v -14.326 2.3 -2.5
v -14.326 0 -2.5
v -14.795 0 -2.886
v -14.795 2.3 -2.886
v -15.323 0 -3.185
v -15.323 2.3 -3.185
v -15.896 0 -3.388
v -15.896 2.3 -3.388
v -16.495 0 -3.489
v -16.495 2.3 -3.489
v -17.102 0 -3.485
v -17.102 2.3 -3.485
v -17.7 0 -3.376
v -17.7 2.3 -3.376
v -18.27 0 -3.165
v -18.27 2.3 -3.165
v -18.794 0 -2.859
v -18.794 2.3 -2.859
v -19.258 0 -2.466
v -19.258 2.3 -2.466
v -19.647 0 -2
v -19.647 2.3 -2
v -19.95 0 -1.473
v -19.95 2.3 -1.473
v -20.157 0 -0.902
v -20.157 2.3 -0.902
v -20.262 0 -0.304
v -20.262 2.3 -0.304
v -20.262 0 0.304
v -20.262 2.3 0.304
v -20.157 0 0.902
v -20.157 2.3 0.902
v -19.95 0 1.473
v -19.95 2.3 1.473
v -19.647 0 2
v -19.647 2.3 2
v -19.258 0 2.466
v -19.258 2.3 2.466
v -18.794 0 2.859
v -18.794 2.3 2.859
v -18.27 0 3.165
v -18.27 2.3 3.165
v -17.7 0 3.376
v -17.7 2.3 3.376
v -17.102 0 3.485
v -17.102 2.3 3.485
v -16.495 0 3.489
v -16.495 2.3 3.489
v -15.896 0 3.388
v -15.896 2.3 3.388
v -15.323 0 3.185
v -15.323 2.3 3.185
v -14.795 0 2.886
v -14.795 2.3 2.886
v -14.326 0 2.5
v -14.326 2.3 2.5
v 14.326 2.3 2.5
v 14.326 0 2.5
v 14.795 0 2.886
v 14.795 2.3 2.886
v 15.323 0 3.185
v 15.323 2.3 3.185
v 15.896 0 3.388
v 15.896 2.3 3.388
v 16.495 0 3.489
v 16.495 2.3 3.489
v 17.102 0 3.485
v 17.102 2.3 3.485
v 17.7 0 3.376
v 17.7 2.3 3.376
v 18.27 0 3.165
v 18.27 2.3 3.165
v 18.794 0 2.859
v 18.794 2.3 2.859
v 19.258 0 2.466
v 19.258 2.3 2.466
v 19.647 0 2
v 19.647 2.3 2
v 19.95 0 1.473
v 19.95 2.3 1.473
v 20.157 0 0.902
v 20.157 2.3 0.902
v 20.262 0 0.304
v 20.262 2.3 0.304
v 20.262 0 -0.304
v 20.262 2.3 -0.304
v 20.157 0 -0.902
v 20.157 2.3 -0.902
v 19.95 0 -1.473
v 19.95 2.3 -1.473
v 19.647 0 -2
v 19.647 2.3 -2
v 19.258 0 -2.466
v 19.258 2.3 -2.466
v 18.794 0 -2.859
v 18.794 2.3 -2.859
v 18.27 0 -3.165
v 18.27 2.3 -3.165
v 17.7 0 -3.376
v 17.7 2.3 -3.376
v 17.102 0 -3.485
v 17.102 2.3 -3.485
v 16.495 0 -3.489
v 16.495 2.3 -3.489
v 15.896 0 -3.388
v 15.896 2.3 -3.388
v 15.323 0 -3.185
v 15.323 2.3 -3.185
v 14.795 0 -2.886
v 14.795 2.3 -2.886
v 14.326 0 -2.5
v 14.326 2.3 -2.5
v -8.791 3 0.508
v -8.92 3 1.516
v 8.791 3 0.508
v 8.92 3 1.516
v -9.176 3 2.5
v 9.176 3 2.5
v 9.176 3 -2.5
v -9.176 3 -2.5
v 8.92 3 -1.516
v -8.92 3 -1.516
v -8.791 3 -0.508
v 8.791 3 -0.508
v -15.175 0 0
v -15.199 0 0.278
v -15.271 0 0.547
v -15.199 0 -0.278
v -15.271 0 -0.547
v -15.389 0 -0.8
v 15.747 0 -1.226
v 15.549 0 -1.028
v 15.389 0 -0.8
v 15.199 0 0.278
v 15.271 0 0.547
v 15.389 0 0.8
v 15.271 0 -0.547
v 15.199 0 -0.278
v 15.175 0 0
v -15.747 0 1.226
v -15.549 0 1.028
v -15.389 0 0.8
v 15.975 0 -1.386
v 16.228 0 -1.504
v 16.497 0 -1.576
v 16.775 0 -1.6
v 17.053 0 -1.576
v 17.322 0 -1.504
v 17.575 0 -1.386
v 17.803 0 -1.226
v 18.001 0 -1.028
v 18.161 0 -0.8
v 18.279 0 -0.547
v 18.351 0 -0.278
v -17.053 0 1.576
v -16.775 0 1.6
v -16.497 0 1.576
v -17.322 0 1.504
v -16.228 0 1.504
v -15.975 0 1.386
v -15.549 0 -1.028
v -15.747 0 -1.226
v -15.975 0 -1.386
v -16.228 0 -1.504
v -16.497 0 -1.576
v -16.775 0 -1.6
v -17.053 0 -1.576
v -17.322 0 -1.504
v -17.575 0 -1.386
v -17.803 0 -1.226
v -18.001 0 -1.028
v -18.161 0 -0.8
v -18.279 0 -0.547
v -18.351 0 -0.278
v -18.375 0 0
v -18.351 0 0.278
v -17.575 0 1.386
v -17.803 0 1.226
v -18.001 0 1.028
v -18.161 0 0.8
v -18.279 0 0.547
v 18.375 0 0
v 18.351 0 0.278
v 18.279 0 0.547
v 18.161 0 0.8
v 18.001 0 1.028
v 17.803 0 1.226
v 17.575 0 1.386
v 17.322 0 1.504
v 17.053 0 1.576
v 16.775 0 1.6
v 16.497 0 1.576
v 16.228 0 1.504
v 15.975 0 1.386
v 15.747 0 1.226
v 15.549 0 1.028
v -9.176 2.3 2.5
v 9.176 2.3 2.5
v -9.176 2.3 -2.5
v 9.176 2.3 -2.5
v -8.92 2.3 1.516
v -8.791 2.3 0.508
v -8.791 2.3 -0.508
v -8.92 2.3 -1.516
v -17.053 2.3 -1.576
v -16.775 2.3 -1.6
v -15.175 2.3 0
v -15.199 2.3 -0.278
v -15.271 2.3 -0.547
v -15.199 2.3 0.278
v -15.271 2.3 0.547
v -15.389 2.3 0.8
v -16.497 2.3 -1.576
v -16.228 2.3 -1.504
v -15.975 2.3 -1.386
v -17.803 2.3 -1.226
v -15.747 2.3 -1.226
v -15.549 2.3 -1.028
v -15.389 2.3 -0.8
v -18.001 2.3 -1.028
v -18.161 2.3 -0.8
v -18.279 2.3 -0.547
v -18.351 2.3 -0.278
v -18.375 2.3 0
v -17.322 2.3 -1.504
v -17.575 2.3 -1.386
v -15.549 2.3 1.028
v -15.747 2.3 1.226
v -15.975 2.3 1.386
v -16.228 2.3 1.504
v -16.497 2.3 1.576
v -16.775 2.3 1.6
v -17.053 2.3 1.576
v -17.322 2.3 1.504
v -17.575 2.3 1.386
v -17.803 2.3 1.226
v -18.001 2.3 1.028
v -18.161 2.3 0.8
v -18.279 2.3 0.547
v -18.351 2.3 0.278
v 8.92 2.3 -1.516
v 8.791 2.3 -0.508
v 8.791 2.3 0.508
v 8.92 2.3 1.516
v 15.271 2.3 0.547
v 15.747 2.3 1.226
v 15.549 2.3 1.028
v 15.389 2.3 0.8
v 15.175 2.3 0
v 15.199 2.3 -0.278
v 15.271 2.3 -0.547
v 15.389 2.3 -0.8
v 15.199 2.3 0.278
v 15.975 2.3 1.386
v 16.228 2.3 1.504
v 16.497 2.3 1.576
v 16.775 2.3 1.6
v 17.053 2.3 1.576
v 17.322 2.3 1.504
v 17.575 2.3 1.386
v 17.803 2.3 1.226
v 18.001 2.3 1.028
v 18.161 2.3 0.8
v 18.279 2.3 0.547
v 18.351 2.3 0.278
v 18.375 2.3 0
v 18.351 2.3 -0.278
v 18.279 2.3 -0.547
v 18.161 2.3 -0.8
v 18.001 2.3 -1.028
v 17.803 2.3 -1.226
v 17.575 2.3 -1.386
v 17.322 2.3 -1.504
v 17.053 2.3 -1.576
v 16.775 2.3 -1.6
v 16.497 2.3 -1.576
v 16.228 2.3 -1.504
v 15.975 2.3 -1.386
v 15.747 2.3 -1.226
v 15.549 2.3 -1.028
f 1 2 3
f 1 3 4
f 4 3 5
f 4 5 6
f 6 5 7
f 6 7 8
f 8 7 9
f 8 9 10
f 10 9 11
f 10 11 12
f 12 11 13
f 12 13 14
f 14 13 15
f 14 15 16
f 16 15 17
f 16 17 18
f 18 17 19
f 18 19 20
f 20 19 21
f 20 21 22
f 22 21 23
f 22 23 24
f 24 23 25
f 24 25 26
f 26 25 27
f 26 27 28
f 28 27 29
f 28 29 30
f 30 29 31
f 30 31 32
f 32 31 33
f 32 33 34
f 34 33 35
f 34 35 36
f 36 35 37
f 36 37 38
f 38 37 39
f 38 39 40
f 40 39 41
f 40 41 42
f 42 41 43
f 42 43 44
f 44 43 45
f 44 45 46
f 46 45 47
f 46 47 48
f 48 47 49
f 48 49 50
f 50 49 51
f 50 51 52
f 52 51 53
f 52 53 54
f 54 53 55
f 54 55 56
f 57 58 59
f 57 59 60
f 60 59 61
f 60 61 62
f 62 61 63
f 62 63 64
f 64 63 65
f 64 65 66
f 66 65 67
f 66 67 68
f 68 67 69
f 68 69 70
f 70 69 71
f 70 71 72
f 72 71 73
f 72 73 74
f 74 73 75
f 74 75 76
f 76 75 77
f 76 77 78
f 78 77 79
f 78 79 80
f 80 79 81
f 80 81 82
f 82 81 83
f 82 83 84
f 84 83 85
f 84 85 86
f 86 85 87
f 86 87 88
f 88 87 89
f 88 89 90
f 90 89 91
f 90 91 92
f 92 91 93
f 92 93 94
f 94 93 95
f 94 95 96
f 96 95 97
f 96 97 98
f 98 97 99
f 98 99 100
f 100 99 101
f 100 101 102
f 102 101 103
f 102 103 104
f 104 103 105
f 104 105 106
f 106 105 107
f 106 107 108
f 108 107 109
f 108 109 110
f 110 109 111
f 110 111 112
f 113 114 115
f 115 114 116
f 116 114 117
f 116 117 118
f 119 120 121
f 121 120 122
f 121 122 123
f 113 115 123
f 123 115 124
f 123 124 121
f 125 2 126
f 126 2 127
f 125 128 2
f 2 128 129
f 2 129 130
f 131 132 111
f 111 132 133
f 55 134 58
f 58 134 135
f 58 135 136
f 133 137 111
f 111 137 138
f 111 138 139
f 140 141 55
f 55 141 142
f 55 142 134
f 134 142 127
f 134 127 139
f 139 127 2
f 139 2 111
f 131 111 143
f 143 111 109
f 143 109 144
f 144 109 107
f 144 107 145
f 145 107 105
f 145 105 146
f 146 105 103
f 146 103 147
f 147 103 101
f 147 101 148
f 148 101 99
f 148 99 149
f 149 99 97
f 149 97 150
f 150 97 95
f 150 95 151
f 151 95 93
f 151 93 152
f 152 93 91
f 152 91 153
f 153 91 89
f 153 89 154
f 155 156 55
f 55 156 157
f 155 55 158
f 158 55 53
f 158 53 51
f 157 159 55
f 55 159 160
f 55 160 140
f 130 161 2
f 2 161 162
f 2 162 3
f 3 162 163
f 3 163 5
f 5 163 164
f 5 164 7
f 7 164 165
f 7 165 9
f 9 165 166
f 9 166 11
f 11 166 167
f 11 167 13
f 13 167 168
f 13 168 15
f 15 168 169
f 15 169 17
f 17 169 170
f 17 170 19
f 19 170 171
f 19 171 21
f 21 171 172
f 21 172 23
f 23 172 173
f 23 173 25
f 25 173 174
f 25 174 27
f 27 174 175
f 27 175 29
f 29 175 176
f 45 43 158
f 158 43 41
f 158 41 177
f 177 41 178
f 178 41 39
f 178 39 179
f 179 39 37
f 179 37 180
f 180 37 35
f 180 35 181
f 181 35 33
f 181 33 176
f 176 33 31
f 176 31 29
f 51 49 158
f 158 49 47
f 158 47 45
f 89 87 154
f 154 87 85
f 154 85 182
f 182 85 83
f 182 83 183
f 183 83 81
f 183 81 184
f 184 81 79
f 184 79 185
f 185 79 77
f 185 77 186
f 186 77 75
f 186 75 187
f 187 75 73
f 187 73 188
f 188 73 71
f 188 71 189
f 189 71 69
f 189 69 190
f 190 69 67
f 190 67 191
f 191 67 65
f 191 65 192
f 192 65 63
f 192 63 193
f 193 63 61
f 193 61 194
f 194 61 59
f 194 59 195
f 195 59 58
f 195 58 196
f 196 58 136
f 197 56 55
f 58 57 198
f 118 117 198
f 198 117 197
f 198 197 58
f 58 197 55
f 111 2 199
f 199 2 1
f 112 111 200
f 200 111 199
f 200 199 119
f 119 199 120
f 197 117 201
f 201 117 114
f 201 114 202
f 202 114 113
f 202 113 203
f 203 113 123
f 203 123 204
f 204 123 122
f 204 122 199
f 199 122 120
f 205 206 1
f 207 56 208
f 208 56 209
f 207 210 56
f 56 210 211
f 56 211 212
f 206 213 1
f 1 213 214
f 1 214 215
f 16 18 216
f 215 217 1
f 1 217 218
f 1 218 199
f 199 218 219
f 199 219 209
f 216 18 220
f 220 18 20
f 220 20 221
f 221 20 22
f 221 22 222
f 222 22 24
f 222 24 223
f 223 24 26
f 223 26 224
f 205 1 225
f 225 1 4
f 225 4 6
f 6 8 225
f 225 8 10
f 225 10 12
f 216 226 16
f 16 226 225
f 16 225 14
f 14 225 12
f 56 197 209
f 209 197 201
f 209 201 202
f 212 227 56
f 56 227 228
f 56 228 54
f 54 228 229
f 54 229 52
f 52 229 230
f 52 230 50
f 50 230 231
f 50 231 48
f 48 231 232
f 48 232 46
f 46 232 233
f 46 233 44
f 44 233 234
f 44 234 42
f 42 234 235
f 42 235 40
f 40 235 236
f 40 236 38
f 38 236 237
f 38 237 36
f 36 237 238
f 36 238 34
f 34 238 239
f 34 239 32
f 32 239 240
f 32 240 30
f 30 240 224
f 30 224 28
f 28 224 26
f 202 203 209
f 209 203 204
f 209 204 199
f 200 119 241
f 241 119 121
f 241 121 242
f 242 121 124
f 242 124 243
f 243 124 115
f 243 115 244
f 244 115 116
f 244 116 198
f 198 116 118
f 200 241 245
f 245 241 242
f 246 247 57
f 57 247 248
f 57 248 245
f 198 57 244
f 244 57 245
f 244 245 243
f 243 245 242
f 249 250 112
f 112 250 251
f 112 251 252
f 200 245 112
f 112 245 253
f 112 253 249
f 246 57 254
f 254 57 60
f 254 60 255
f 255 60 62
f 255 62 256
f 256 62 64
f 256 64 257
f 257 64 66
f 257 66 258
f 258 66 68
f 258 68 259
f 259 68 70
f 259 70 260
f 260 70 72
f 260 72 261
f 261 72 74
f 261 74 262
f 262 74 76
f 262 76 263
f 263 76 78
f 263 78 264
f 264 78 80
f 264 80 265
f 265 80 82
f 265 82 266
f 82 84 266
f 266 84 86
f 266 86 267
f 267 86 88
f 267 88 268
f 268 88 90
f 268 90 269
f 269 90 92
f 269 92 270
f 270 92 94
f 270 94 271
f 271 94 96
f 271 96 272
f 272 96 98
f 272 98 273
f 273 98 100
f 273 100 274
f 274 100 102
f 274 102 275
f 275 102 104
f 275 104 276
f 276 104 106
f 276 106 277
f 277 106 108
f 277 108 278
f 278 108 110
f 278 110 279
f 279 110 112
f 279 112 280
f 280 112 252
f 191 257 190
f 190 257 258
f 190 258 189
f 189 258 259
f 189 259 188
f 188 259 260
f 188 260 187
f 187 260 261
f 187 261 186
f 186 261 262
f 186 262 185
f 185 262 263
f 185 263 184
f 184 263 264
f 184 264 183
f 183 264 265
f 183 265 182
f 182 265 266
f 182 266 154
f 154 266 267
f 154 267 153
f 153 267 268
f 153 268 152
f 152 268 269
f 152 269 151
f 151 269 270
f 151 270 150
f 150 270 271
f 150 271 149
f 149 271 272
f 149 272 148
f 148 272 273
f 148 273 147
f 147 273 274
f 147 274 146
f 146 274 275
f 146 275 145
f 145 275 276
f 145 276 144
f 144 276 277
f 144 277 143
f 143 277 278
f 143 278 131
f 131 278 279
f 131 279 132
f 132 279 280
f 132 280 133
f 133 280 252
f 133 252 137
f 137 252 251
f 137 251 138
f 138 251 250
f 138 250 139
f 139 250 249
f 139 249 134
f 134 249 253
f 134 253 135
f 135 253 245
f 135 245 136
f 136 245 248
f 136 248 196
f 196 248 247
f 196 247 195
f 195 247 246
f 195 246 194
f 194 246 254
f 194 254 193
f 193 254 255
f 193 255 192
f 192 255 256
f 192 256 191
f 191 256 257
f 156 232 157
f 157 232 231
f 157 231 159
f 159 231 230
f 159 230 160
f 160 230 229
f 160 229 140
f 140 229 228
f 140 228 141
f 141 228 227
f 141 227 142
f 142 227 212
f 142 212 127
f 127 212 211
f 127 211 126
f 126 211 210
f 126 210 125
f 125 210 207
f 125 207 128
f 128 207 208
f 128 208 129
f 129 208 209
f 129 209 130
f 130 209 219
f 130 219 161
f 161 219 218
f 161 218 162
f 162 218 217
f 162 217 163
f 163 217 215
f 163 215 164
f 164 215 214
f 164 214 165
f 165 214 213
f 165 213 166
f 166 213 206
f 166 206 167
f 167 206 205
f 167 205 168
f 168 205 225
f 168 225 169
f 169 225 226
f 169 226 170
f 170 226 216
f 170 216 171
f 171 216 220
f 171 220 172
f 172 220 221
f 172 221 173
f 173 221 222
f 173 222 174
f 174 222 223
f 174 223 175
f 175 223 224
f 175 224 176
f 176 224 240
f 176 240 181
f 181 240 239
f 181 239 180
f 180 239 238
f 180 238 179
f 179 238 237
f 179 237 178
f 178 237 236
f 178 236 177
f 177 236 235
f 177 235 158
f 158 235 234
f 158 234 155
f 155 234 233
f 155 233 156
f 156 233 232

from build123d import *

# Parameters (mm, degrees)
SKETCH1_R           = 1.5
BOSS_EXTRUDE1_DEPTH = 3
SKETCH2_R           = 8
CUT_EXTRUDE1_DEPTH  = 0.7
SKETCH3_R           = 1.6
CUT_EXTRUDE3_DEPTH  = 10.5


with BuildPart() as part:
    # Sketch1 → Boss-Extrude1 (new body)
    with BuildSketch(Plane(origin=(0, 0, 0), x_dir=(1, 0, 0), z_dir=(0, 1, 0))):
        with BuildLine():
            Line((-14.325510257, -2.5), (14.325510257, -2.5))
            ThreePointArc((14.325510257, -2.5), (20.275, 0), (14.325510257, 2.5))
            Line((14.325510257, 2.5), (-14.325510257, 2.5))
            ThreePointArc((-14.325510257, 2.5), (-20.275, 0), (-14.325510257, -2.5))
        make_face()
        with Locations(Location((16.775, 0, 0), (0, 0, 270))):
            Circle(SKETCH1_R, mode=Mode.SUBTRACT)
        with Locations(Location((-16.775, 0, 0), (0, 0, 270))):
            Circle(SKETCH1_R, mode=Mode.SUBTRACT)
    extrude(amount=BOSS_EXTRUDE1_DEPTH)

    # Sketch2 → Cut-Extrude1 (cut)
    with BuildSketch(Plane(origin=(0, 3, 0), x_dir=(1, 0, 0), z_dir=(0, 1, 0))):
        with Locations((-16.775, 0)):
            Circle(SKETCH2_R)
        with Locations((16.775, 0)):
            Circle(SKETCH2_R)
    extrude(amount=-CUT_EXTRUDE1_DEPTH, mode=Mode.SUBTRACT)

    # Sketch3 → Cut-Extrude3 (cut)
    with BuildSketch(Plane(origin=(0, 2.3, 0), x_dir=(1, 0, 0), z_dir=(0, 1, 0))):
        with Locations(Location((-16.775, 0, 0), (0, 0, 270))):
            Circle(SKETCH3_R)
        with Locations(Location((16.775, 0, 0), (0, 0, 270))):
            Circle(SKETCH3_R)
    extrude(amount=-CUT_EXTRUDE3_DEPTH, mode=Mode.SUBTRACT)


solid = part.part
